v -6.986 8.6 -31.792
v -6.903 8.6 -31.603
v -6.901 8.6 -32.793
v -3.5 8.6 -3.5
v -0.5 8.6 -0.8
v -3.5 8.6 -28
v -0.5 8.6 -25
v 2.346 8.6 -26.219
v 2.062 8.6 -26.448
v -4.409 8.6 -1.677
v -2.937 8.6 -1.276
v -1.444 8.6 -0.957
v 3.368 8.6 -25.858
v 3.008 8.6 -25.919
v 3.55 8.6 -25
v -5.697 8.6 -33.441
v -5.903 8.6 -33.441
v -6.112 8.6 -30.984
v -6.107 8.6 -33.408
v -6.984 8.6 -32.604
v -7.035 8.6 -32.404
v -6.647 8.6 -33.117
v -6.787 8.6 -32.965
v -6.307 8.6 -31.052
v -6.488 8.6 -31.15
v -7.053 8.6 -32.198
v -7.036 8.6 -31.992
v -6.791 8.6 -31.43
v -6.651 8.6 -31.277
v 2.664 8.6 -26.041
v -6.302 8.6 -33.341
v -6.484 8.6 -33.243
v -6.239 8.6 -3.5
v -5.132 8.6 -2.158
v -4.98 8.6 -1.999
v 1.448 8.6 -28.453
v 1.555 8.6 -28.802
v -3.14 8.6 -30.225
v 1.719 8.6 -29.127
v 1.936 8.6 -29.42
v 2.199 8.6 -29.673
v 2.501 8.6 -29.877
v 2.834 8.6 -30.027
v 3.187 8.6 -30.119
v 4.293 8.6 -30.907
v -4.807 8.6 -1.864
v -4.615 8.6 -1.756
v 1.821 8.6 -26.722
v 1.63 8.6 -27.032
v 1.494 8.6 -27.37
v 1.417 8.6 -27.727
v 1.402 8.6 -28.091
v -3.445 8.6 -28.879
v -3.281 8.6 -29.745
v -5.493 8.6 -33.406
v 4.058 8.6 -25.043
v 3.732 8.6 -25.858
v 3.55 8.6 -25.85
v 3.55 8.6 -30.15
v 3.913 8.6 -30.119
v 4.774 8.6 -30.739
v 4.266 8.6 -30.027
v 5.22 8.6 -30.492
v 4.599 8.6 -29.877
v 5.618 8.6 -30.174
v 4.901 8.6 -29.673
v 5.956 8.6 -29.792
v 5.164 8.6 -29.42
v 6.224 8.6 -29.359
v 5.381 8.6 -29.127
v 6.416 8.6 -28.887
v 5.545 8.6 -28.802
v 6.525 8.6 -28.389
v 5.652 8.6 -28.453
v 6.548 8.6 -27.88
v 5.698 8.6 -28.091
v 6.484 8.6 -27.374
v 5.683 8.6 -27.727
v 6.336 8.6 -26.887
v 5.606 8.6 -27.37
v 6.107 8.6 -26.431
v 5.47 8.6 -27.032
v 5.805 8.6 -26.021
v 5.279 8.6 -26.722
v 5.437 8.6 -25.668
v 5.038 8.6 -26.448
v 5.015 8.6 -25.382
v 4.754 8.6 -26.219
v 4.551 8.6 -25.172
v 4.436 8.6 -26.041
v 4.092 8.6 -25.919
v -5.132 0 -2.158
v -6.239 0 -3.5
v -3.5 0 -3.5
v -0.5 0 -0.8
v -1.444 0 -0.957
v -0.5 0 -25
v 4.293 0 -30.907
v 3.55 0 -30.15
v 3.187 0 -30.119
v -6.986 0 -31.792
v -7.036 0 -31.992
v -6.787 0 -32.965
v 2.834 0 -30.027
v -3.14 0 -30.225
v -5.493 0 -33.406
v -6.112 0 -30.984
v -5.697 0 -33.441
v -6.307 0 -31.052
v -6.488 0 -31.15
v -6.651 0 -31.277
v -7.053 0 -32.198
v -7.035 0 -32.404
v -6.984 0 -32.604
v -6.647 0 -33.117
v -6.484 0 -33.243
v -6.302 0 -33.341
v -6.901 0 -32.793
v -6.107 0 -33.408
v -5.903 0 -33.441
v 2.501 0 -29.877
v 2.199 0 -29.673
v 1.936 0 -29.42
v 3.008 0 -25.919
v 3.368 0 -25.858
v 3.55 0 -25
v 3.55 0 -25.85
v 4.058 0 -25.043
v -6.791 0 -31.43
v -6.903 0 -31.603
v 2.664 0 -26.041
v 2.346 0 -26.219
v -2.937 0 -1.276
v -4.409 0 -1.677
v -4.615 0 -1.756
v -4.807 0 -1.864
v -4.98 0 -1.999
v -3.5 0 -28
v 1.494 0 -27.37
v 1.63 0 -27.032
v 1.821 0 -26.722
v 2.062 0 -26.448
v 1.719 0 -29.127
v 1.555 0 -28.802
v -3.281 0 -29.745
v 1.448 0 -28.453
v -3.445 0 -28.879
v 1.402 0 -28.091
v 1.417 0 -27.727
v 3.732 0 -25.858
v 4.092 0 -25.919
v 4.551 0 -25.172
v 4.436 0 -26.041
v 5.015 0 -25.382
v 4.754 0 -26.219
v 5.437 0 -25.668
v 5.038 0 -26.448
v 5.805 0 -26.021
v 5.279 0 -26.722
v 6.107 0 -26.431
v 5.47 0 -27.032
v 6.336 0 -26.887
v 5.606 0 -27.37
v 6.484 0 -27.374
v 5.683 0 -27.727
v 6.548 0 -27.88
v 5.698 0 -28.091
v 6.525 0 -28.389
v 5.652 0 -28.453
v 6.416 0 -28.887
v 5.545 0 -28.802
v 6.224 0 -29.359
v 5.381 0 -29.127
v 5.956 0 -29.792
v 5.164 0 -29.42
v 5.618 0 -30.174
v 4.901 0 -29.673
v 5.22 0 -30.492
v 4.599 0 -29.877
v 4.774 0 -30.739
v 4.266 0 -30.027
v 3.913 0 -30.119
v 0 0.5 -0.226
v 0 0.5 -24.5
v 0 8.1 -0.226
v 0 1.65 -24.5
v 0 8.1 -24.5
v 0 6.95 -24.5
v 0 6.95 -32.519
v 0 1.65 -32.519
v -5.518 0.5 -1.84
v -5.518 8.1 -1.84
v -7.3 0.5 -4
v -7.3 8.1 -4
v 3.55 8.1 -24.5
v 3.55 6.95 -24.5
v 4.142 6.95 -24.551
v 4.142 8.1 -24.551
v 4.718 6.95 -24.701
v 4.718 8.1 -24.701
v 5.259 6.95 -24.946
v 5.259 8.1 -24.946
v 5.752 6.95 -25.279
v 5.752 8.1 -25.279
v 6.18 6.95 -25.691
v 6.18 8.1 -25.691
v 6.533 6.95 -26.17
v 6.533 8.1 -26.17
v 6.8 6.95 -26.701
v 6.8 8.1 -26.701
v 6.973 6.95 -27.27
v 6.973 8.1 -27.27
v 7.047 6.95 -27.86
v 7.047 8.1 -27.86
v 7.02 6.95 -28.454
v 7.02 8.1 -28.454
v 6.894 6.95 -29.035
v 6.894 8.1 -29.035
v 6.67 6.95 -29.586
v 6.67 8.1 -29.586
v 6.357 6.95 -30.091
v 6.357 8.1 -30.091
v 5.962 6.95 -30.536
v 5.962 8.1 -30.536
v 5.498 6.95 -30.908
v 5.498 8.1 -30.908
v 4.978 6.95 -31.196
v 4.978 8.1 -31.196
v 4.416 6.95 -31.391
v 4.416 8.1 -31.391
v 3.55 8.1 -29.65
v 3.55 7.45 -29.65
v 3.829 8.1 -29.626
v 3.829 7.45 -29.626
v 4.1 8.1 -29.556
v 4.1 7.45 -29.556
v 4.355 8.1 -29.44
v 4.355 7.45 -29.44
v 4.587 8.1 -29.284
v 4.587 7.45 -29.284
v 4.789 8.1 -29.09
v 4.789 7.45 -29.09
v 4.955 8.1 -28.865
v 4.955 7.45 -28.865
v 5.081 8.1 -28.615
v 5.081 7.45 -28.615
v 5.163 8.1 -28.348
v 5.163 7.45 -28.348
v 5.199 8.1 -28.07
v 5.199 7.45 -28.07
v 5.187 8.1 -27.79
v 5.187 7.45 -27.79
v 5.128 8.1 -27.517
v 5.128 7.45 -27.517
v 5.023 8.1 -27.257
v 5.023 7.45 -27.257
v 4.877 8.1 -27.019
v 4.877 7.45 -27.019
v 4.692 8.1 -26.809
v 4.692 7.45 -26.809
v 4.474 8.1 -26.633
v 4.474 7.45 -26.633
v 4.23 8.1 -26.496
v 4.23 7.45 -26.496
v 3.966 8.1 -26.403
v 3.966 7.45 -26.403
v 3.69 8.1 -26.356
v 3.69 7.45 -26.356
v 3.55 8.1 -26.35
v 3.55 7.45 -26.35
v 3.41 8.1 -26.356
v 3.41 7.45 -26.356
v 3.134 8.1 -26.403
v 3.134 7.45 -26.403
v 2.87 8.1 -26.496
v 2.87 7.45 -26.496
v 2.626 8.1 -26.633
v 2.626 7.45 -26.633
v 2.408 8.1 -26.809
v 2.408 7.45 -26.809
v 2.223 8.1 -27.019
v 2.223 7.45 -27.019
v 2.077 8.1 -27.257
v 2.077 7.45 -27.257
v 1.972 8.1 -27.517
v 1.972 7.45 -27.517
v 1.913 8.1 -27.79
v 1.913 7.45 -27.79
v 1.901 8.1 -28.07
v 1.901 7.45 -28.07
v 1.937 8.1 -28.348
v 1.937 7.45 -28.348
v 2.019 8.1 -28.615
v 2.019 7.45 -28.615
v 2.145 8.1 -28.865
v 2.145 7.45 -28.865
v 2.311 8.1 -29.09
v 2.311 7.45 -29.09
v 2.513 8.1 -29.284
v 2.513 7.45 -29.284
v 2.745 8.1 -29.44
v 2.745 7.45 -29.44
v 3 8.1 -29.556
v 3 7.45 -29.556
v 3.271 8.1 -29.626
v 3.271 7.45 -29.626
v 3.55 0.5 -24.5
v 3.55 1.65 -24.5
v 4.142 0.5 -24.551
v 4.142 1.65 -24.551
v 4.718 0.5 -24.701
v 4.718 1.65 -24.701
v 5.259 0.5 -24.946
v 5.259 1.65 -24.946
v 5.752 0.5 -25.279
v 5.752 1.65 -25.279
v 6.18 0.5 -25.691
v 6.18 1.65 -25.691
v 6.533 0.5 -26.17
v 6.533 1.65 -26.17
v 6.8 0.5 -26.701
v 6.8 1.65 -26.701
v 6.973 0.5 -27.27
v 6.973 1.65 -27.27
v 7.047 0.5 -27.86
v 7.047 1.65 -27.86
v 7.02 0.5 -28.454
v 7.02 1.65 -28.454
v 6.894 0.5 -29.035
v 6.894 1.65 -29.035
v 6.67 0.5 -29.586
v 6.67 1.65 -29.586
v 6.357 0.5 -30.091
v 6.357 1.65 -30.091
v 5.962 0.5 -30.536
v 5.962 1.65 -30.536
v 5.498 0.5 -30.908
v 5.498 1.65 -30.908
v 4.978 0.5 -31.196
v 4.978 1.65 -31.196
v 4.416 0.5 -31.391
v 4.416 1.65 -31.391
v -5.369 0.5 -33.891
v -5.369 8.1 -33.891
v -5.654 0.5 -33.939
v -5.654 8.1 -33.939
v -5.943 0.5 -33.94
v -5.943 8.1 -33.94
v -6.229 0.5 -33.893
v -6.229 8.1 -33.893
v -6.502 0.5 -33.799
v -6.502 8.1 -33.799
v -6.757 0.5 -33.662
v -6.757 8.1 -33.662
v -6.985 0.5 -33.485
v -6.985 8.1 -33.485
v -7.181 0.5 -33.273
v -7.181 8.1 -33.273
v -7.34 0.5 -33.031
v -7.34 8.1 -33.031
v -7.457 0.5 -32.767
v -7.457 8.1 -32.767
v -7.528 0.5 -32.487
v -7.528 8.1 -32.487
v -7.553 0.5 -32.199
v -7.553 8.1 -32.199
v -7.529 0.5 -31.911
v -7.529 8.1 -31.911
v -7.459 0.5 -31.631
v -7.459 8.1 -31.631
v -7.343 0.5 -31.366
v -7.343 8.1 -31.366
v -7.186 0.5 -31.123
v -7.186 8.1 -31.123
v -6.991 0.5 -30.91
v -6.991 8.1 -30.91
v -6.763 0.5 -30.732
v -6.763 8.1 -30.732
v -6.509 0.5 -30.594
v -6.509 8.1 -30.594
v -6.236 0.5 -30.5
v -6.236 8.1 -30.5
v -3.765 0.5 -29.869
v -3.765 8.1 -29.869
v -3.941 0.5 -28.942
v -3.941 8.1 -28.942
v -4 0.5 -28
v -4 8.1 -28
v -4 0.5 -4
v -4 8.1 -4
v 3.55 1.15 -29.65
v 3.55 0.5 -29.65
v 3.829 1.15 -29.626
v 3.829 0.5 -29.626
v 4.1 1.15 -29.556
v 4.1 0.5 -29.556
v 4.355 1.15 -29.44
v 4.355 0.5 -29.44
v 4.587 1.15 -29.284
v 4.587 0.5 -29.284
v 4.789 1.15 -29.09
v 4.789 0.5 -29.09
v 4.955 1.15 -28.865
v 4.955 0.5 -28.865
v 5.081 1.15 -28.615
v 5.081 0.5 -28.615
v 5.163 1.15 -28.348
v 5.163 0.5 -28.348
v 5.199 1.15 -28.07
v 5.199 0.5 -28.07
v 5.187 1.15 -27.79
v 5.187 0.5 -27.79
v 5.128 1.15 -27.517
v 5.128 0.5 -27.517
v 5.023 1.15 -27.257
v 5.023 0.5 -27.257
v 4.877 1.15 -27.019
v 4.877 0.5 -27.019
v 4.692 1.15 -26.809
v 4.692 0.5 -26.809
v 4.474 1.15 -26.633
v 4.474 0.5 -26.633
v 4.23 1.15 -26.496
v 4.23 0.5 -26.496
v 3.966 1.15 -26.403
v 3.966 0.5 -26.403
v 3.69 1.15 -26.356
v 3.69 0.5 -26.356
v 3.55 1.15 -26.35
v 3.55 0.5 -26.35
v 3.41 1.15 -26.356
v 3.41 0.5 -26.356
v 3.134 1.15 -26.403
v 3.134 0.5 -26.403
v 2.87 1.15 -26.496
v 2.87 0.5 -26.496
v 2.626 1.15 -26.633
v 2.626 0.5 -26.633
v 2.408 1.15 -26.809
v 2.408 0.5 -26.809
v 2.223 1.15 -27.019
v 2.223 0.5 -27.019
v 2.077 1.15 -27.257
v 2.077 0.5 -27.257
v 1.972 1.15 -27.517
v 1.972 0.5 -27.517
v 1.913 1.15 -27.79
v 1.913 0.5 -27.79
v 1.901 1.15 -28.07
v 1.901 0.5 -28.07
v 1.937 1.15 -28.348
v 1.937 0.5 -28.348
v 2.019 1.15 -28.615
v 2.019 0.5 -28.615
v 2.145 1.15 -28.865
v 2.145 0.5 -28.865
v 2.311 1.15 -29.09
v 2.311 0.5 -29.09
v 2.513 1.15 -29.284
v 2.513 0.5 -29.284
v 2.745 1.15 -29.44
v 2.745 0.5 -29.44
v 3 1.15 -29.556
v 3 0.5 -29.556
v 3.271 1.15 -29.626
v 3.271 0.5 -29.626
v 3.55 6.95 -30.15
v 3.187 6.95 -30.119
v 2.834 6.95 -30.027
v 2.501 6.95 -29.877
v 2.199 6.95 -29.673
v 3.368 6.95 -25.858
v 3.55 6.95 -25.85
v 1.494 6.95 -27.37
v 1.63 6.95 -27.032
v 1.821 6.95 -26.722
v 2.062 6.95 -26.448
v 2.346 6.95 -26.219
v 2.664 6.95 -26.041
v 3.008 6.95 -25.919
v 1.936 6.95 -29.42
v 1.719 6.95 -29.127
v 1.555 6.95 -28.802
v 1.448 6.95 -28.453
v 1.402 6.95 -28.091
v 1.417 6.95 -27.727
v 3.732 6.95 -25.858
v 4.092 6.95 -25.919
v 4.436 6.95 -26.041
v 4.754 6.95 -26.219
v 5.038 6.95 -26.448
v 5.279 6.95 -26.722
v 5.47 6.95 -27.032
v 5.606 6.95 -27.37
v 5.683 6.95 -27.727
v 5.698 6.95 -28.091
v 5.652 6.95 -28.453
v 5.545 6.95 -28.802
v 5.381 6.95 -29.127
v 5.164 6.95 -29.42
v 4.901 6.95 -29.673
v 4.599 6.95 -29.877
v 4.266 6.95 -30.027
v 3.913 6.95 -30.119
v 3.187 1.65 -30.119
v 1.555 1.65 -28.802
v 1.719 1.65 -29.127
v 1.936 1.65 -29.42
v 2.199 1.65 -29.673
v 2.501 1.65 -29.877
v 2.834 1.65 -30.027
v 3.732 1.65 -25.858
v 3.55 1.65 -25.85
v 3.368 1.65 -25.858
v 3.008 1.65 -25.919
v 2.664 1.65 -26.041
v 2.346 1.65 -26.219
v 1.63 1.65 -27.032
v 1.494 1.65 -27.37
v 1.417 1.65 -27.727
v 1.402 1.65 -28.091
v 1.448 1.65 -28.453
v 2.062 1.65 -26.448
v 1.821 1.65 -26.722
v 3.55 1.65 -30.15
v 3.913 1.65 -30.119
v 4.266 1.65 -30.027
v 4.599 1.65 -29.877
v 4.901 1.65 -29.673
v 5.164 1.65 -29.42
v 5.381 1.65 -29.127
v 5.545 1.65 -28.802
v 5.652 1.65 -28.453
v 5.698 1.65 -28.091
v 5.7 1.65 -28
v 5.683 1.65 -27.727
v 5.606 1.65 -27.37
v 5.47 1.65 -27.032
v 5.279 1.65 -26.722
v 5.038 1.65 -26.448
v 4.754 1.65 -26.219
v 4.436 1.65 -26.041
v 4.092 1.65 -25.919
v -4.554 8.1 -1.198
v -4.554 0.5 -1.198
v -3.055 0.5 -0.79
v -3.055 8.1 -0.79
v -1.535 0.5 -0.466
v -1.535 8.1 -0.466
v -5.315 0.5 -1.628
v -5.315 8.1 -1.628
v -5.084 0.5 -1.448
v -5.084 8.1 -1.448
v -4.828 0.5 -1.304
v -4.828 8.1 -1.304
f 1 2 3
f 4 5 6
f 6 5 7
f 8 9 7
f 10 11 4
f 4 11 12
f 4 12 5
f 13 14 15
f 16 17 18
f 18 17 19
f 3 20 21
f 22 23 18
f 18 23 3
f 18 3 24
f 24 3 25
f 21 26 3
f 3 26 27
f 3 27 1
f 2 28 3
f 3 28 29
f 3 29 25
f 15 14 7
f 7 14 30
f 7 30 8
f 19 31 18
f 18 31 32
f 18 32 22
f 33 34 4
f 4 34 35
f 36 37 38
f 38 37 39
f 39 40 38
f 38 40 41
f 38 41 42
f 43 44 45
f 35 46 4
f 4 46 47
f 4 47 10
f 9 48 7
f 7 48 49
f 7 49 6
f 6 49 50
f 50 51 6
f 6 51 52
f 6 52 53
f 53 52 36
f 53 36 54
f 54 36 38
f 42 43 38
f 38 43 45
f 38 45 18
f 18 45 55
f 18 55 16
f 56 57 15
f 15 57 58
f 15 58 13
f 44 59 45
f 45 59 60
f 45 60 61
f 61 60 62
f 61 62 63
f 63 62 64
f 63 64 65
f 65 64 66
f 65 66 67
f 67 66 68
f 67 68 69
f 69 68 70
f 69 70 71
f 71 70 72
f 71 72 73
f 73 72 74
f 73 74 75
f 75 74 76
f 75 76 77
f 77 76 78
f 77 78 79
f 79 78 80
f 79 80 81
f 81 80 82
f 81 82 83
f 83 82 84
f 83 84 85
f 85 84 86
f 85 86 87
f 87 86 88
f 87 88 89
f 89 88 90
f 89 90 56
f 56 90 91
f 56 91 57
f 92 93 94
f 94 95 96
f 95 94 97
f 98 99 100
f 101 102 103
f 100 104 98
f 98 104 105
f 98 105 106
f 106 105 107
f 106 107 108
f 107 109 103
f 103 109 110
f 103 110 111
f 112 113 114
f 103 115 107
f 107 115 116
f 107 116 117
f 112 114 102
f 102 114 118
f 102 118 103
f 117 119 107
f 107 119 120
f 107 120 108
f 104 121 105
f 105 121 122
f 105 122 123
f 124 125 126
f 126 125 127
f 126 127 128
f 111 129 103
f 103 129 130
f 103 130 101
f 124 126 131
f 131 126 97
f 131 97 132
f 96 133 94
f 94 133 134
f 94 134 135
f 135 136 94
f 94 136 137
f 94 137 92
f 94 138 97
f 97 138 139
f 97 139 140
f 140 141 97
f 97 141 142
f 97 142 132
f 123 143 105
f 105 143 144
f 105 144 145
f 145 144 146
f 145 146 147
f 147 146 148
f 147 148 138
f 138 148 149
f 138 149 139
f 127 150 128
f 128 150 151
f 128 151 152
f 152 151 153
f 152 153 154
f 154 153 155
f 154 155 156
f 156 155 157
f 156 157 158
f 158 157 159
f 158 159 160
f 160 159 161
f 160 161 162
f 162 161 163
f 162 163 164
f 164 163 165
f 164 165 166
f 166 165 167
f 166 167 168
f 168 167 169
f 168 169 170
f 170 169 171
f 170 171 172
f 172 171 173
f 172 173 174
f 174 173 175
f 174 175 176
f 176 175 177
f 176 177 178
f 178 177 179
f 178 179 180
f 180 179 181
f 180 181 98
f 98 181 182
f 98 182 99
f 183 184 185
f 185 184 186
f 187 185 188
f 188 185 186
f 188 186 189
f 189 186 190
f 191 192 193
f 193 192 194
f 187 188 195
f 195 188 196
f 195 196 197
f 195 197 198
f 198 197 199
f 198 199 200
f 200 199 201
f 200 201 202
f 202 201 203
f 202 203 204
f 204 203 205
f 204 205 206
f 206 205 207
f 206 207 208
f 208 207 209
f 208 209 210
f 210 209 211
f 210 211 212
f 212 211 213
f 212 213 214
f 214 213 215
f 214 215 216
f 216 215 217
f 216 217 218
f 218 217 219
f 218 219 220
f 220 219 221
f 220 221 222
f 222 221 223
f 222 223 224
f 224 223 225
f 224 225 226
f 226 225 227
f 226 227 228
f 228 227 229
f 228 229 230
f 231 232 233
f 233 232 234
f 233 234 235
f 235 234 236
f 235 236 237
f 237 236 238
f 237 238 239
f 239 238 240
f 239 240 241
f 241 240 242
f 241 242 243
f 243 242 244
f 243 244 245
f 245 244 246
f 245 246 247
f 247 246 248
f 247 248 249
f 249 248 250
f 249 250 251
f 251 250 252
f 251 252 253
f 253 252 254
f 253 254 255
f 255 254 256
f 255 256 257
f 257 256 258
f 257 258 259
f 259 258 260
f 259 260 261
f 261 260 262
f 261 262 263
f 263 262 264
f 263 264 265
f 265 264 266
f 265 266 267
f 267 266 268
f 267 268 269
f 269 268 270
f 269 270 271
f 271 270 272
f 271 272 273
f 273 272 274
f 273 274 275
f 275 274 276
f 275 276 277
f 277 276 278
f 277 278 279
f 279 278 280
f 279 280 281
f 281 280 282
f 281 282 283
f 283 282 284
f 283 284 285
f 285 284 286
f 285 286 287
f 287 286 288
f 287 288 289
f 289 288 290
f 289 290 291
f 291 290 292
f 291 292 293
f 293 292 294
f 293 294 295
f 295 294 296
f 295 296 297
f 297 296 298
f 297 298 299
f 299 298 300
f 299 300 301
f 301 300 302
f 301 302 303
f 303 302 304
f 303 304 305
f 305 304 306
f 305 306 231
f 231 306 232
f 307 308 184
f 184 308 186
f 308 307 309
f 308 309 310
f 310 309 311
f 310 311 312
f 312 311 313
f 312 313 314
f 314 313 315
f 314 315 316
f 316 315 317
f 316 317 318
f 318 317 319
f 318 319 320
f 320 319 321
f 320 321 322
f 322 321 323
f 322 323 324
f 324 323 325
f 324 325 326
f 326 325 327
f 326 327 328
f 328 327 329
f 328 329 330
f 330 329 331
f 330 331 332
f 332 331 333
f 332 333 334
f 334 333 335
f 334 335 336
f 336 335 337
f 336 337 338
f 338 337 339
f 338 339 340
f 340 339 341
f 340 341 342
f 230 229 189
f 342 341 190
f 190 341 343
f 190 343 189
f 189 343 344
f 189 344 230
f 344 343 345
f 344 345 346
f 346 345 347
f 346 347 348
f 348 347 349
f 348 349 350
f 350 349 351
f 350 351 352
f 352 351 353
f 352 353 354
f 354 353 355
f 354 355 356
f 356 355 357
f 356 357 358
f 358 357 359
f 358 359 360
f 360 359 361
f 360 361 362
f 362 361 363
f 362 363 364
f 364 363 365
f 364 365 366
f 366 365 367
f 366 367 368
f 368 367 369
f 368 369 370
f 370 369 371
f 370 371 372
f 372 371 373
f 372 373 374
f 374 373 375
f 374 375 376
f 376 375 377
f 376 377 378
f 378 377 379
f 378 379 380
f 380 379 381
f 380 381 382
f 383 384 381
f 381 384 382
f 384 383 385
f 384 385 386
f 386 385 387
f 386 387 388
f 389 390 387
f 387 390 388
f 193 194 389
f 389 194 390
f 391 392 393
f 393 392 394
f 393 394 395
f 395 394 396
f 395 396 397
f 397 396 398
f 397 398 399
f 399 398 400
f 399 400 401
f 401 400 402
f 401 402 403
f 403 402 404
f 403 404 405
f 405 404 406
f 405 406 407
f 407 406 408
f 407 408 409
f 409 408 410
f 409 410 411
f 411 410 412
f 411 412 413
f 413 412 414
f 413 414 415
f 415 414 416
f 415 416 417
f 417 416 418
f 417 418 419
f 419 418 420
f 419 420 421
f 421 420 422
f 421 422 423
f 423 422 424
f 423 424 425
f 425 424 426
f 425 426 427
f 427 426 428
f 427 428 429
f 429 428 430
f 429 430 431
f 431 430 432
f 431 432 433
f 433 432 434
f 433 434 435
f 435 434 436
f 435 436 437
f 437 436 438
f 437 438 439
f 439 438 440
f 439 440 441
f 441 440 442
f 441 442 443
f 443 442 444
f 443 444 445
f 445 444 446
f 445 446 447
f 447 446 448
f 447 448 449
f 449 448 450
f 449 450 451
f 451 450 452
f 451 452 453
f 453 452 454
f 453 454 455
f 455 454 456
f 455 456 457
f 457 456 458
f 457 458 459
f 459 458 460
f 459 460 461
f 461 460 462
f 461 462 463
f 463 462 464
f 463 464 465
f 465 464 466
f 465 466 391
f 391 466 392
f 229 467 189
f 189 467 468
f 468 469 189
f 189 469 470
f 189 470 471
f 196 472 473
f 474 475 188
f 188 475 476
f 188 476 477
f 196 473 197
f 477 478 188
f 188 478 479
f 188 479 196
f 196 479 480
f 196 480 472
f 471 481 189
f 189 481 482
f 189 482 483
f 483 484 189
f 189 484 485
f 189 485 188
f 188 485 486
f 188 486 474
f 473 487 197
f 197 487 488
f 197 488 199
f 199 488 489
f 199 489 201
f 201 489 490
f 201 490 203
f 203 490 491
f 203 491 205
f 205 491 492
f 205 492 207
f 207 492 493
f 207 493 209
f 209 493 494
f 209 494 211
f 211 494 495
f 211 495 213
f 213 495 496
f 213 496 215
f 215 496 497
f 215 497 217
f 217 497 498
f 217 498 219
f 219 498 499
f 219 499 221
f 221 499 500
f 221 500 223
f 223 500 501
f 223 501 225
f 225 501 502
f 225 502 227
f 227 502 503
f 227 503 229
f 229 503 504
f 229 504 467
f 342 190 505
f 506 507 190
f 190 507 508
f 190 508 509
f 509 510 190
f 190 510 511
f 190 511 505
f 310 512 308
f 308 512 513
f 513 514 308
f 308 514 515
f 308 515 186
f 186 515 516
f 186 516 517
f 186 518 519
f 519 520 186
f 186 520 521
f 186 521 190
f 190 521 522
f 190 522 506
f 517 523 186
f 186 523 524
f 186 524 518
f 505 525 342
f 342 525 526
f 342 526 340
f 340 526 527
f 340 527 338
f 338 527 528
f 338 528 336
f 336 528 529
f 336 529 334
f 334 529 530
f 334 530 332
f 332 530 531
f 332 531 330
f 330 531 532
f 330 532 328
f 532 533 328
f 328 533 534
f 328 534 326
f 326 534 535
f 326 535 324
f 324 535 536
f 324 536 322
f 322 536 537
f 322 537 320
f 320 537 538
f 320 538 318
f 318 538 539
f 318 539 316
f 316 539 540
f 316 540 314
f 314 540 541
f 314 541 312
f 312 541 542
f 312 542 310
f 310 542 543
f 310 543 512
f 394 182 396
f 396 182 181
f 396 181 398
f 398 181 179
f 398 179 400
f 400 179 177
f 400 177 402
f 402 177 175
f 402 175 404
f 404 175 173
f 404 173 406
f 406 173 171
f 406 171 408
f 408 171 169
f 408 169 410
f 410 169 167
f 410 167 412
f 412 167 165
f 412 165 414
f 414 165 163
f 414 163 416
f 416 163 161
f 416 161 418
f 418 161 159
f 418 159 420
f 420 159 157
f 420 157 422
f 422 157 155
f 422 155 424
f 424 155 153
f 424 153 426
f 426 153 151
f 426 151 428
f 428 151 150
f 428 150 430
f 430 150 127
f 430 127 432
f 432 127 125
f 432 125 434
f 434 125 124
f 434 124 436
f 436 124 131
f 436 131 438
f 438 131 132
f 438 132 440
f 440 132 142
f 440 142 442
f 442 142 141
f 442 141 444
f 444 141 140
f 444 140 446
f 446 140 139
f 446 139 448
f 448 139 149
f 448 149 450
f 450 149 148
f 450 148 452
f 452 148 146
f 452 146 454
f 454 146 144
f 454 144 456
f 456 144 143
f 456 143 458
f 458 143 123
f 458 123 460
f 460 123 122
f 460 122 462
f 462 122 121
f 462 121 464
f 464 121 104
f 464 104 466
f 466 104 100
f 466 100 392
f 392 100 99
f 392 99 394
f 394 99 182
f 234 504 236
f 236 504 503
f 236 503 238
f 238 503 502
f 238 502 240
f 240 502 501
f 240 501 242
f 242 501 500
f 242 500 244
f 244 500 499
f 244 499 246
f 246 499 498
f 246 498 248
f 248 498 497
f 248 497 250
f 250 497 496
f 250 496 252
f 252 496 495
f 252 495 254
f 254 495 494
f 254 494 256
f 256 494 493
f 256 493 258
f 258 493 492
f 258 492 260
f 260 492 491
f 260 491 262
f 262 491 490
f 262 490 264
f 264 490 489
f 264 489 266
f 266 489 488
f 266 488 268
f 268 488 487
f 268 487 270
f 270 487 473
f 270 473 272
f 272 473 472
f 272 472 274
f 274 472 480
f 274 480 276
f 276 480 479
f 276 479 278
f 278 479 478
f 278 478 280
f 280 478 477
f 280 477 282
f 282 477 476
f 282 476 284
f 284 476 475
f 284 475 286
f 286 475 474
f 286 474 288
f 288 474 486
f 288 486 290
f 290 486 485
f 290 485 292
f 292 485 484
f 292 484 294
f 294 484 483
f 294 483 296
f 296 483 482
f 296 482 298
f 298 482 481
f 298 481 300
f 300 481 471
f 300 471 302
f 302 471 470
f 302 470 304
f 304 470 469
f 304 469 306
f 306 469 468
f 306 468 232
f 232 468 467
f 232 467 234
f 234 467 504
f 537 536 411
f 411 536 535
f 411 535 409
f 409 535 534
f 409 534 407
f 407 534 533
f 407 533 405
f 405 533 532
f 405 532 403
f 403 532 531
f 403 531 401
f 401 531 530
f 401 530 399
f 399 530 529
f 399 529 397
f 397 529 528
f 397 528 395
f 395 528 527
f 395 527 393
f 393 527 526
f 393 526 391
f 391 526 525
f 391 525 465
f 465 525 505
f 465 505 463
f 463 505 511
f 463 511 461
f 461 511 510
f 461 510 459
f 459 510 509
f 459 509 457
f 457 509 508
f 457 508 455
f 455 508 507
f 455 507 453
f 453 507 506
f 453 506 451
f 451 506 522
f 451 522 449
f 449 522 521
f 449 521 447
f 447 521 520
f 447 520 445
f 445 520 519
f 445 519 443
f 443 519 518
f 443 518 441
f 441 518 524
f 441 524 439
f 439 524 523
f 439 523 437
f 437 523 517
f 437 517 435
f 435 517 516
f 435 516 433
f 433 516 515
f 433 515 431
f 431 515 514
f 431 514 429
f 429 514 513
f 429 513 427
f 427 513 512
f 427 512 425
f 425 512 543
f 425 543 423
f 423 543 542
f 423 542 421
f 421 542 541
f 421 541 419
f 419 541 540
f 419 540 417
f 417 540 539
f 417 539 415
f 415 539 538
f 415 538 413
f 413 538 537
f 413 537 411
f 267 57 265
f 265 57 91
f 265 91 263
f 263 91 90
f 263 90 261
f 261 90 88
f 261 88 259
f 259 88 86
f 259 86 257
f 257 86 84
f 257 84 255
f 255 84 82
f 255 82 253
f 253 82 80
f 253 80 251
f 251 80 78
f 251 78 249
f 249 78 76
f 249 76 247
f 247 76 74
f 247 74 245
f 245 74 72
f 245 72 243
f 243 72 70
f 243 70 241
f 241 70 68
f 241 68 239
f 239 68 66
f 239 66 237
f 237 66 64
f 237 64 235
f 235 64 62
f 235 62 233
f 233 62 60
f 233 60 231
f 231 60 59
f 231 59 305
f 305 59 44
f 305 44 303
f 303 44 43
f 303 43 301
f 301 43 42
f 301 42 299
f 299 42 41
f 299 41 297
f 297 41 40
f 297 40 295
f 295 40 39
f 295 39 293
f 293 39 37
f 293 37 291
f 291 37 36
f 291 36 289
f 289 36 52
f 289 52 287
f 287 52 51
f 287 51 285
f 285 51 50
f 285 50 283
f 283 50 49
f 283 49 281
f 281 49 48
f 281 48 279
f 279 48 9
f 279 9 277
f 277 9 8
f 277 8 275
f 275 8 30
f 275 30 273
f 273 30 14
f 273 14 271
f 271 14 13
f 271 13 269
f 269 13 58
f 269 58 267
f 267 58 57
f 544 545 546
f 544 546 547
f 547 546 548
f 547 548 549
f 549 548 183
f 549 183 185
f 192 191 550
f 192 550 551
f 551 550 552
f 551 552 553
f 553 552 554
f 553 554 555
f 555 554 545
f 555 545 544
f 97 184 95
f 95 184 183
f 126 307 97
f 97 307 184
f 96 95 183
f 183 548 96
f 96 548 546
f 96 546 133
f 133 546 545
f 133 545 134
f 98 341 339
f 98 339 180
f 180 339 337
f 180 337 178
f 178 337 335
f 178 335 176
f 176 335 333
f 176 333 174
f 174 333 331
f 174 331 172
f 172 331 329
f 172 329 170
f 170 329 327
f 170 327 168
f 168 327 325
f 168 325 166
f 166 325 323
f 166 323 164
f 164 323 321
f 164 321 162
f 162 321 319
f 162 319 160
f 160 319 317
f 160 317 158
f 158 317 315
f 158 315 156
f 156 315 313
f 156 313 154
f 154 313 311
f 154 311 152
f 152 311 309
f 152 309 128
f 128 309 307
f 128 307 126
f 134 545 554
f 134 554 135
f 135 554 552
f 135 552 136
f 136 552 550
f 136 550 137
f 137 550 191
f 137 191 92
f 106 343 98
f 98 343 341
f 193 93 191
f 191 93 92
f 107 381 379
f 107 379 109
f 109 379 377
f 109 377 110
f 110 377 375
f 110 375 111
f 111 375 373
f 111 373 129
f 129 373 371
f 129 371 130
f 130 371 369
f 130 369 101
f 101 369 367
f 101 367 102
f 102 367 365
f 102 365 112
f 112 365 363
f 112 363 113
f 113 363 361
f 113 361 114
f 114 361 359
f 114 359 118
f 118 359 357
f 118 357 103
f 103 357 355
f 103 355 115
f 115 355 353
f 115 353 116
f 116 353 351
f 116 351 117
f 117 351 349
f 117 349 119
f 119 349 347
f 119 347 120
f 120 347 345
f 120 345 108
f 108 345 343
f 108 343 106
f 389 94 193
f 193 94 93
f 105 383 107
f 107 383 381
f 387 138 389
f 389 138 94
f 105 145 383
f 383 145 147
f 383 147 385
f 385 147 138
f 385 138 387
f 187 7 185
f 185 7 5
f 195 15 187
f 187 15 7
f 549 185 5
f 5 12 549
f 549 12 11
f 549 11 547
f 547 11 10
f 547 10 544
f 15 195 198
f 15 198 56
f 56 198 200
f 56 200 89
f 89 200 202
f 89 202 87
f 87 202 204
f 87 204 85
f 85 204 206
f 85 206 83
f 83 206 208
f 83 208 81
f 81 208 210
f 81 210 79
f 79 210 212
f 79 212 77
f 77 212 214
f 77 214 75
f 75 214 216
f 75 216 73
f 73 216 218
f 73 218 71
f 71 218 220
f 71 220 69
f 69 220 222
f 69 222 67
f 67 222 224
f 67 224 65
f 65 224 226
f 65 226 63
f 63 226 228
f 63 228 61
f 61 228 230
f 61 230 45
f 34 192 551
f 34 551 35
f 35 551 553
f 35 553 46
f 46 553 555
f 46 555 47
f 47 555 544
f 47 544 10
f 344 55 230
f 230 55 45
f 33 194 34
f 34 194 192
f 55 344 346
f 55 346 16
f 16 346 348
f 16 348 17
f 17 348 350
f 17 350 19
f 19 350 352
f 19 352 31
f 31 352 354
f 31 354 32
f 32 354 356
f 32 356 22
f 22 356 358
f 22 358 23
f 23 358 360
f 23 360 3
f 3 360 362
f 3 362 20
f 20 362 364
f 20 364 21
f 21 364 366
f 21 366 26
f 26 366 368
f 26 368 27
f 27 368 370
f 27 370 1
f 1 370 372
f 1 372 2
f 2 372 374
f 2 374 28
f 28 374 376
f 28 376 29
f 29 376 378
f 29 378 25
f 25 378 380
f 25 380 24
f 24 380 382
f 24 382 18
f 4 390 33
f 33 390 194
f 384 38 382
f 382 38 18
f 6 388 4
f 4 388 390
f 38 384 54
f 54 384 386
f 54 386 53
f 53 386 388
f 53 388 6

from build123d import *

# Parameters (mm, degrees)
SKETCH1_R           = 1.65
BOSS_EXTRUDE1_DEPTH = 8.6
SKETCH2_W           = 7.05
SKETCH2_H           = 5.3
CUT_EXTRUDE1_DEPTH  = 28.041671481
CHAMFER1_SIZE       = 0.5
CUT_EXTRUDE2_DEPTH  = 36.823034653
FILLET1_R           = 2
CHAMFER2_SIZE       = 0.5


with BuildPart() as part:
    # Sketch1 → Boss-Extrude1 (new body)
    with BuildSketch(Plane(origin=(0, 0, 0), x_dir=(1, 0, 0), z_dir=(0, 1, 0))):
        with BuildLine():
            Line((4.41627224, 31.391101946), (-5.369479089, 33.890916124))
            ThreePointArc((-5.369479089, 33.890916124), (-7.498166182, 32.628501271), (-6.235751329, 30.499814178))
            Line((-6.235751329, 30.499814178), (-3.76509134, 29.868672975))
            ThreePointArc((-3.76509134, 29.868672975), (-3.941042638, 28.941690072), (-4, 28))
            Line((-4, 28), (-4, 4))
            Line((-4, 4), (-7.3, 4))
            Line((-7.3, 4), (-4, 0))
            Line((-4, 0), (0, 0))
            Line((0, 0), (0, 24.5))
            Line((0, 24.5), (3.55, 24.5))
            ThreePointArc((3.55, 24.5), (7.022668773, 27.563454934), (4.41627224, 31.391101946))
        make_face()
        with Locations(Location((3.55, 28, 0), (0, 0, 90))):
            Circle(SKETCH1_R, mode=Mode.SUBTRACT)
    extrude(amount=BOSS_EXTRUDE1_DEPTH)

    # Sketch2 → Cut-Extrude1 (cut, through all)
    with BuildSketch(Plane.XY.offset(-24.5)):
        with Locations((3.525, 4.3)):
            Rectangle(SKETCH2_W, SKETCH2_H)
    extrude(amount=-CUT_EXTRUDE1_DEPTH, mode=Mode.SUBTRACT)

    # Chamfer1
    chamfer1_edges = [part.edges().sort_by_distance(p)[0] for p in [
        (3.55, 0, -26.35),
        (3.55, 8.6, -26.35),
        (3.55, 6.95, -26.35),
        (3.55, 1.65, -26.35),
    ]]
    chamfer(chamfer1_edges, length=CHAMFER1_SIZE)

    # Sketch3 → Cut-Extrude2 (cut, through all)
    with BuildSketch(Plane(origin=(0, 0, 0), x_dir=(1, 0, 0), z_dir=(0, 1, 0))):
        with BuildLine():
            Line((0, 0.225956362), (0, 0))
            Line((0, 0), (-4, 0))
            Line((-4, 0), (-5.140926966, 1.382941776))
            ThreePointArc((-5.140926966, 1.382941776), (-2.597741622, 0.683241903), (0, 0.225956362))
        make_face()
    extrude(amount=CUT_EXTRUDE2_DEPTH, mode=Mode.SUBTRACT)

    # Fillet1
    fillet1_edges = [part.edges().sort_by_distance(p)[0] for p in [
        (-5.140926966, 4.3, -1.382941776),
    ]]
    fillet(fillet1_edges, radius=FILLET1_R)

    # Chamfer2
    chamfer2_edges = [part.edges().sort_by_distance(p)[0] for p in [
        (-5.083597869, 8.6, -1.448008405),
        (-6.409042622, 0, -2.920051663),
        (-5.65, 0, -4),
        (-4, 0, -16),
        (-3.941042638, 0, -28.941690072),
        (7.022668773, 8.6, -27.563454934),
        (-5.000421335, 0, -30.184243577),
        (-7.498166182, 0, -32.628501271),
        (-0.476603424, 0, -32.641009035),
        (7.022668773, 0, -27.563454934),
        (1.775, 0, -24.5),
        (-0.476603424, 8.6, -32.641009035),
        (-7.498166182, 8.6, -32.628501271),
        (-5.000421335, 8.6, -30.184243577),
        (-3.941042638, 8.6, -28.941690072),
        (-4, 8.6, -16),
        (-5.65, 8.6, -4),
        (-6.409042622, 8.6, -2.920051663),
        (0, 0, -12.362978181),
        (0, 8.6, -12.362978181),
        (-2.297358874, 0, -0.617370576),
        (-2.297358874, 8.6, -0.617370576),
        (1.775, 8.6, -24.5),
        (-5.083597869, 0, -1.448008405),
    ]]
    chamfer(chamfer2_edges, length=CHAMFER2_SIZE)


solid = part.part
